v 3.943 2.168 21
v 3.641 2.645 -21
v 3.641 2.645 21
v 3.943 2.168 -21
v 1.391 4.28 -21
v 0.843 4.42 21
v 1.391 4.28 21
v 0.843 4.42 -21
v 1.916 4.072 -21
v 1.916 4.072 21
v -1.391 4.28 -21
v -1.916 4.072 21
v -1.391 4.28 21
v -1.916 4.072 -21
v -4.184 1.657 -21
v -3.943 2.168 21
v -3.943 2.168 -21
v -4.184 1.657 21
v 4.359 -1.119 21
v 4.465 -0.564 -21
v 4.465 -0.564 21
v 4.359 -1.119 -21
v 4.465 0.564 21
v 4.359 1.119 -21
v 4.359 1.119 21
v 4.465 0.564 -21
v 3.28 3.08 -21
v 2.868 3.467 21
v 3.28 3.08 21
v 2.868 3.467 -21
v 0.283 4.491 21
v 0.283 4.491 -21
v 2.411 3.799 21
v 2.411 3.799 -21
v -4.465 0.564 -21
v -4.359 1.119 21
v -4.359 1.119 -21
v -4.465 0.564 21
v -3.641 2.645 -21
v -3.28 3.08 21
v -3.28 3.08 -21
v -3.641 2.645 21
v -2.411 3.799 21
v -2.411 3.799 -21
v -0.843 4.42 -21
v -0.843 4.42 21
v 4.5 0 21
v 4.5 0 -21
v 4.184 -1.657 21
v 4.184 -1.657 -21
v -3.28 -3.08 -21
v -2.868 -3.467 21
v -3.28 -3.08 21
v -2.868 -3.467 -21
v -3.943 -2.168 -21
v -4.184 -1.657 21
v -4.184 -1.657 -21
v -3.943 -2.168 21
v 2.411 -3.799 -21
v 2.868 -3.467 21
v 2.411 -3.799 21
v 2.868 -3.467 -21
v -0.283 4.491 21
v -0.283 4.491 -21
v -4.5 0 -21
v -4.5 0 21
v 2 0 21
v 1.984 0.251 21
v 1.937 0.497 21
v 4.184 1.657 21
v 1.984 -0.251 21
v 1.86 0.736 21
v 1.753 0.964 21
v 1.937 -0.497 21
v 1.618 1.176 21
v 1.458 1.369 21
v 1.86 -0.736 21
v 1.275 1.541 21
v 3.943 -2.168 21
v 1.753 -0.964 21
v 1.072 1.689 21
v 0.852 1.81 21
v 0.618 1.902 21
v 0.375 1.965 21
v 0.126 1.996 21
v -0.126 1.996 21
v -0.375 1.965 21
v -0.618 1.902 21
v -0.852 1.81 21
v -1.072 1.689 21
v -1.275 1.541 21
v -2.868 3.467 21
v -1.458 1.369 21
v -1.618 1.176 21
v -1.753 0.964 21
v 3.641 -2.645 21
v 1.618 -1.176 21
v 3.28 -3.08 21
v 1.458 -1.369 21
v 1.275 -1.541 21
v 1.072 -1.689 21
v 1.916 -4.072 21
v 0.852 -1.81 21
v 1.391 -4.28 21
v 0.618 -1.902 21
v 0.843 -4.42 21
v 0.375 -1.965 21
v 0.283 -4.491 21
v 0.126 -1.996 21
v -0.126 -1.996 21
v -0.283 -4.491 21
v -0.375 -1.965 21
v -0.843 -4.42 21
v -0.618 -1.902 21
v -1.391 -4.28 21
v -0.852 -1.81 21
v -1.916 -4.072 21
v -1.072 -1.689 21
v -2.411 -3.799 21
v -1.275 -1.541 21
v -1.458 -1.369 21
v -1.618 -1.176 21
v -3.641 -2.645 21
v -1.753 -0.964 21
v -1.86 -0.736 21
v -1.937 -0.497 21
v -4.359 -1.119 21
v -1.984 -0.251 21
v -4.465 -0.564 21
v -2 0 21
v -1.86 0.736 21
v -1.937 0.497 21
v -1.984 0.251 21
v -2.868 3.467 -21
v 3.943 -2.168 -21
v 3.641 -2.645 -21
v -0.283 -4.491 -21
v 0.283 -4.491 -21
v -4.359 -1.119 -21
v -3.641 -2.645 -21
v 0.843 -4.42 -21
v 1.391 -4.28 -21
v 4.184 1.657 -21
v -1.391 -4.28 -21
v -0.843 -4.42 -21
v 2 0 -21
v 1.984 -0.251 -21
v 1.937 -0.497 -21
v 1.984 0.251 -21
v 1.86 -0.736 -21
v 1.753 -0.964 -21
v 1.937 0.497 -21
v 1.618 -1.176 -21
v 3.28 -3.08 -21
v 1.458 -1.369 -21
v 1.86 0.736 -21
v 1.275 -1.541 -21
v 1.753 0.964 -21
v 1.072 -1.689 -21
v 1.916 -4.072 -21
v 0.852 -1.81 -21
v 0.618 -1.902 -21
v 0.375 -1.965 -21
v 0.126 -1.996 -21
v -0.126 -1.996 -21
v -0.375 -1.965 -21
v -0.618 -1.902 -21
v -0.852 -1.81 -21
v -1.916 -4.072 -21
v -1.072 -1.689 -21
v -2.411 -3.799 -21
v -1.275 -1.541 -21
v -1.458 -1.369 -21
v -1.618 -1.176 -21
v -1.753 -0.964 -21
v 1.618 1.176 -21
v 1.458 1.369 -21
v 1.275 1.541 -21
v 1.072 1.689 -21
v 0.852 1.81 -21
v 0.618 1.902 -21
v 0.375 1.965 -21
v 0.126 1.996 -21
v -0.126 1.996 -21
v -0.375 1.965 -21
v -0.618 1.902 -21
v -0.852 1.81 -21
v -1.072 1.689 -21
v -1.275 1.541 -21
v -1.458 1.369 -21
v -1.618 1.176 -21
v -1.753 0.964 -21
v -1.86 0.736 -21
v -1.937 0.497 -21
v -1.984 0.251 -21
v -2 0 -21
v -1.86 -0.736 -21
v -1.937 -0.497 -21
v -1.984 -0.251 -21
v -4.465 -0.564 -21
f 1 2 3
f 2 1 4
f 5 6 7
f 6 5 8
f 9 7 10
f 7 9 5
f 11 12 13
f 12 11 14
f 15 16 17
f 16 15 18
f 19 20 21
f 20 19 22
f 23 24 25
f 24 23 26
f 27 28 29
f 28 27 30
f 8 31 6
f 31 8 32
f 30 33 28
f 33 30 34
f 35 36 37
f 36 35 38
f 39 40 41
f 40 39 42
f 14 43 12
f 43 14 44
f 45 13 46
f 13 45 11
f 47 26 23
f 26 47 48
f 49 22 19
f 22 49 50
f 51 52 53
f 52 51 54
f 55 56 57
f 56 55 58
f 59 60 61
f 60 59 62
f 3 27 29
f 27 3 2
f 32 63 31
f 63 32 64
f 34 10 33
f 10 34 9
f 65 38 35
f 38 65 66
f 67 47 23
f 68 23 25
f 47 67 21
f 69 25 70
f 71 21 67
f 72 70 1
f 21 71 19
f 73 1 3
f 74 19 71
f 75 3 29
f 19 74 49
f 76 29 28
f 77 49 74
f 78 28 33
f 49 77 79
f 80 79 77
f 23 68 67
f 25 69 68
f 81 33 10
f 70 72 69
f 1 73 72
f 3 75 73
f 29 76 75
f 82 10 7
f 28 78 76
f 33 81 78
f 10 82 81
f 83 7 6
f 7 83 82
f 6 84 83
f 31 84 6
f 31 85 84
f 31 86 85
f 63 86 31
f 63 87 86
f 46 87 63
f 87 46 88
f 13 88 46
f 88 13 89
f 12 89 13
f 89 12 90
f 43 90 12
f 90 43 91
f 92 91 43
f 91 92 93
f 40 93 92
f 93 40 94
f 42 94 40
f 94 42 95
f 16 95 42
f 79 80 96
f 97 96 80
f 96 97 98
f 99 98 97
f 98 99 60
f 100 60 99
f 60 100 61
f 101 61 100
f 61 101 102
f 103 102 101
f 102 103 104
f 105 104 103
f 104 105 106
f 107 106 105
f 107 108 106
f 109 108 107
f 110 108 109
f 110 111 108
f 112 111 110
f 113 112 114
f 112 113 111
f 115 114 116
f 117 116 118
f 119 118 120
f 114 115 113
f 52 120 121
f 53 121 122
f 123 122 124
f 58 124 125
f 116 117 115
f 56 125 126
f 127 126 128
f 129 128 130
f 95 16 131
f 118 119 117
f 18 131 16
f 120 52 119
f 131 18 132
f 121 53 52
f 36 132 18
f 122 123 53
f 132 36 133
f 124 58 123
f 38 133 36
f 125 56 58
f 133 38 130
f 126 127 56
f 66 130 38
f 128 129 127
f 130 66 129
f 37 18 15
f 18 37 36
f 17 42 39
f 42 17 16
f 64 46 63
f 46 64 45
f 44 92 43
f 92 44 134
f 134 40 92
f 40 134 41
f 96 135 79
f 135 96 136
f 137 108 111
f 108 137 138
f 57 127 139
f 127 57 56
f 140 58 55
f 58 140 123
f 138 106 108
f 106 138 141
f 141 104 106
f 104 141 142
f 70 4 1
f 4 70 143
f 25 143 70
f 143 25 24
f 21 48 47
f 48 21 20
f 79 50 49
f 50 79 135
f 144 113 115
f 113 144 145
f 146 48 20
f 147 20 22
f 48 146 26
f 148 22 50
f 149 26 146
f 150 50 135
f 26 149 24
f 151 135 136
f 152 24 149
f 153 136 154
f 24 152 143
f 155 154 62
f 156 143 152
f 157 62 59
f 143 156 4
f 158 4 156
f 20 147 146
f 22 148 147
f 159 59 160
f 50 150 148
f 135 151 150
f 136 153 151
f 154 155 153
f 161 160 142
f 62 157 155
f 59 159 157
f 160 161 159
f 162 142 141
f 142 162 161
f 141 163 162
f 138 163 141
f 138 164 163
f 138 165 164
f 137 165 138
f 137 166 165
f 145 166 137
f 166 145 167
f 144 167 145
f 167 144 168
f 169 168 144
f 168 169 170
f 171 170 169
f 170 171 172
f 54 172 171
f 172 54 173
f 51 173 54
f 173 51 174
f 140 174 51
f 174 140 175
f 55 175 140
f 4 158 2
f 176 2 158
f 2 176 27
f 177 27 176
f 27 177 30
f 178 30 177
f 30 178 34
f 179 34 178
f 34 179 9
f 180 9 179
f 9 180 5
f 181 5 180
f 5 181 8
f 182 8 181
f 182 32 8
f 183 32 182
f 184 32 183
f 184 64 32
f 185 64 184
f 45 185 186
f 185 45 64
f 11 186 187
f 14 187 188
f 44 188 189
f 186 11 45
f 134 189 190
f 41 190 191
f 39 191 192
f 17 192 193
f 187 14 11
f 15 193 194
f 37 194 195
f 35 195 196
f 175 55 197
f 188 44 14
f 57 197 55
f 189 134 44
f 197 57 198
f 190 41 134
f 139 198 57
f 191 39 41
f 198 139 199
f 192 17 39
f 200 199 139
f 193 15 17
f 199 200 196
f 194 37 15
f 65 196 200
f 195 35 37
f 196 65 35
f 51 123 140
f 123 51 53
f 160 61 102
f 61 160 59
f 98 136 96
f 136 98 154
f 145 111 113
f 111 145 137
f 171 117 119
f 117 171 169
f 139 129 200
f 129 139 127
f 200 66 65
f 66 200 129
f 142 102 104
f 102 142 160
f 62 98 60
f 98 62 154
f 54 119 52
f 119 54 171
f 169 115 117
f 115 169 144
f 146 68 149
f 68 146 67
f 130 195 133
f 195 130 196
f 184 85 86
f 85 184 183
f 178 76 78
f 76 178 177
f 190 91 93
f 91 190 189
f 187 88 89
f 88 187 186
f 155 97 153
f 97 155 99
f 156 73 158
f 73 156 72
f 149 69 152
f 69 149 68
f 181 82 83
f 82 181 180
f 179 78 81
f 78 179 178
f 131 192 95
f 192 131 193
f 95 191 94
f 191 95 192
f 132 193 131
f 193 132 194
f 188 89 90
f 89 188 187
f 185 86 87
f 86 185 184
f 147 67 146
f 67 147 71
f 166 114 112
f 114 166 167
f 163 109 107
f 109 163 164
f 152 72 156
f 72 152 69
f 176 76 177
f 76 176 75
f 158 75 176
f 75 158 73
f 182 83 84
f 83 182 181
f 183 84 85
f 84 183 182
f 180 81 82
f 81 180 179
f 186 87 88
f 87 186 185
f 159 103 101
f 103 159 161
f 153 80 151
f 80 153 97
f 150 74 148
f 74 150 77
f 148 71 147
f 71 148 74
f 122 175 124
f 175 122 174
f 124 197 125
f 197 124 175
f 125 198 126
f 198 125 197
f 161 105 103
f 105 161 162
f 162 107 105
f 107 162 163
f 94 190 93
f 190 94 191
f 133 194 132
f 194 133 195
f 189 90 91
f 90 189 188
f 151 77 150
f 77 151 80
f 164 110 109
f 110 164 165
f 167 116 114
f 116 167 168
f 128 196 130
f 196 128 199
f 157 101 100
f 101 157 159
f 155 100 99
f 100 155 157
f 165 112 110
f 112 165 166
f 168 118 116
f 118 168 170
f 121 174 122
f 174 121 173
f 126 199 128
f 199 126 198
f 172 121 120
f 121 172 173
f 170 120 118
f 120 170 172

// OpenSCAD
$fn = 50;


difference() {
	union() {
		translate(v = [0, 0, -21.0000000000]) {
			cylinder(h = 42, r = 4.5000000000);
		}
	}
	union() {
		translate(v = [0, 0, -100.0000000000]) {
			cylinder(h = 200, r = 2);
		}
	}
}
